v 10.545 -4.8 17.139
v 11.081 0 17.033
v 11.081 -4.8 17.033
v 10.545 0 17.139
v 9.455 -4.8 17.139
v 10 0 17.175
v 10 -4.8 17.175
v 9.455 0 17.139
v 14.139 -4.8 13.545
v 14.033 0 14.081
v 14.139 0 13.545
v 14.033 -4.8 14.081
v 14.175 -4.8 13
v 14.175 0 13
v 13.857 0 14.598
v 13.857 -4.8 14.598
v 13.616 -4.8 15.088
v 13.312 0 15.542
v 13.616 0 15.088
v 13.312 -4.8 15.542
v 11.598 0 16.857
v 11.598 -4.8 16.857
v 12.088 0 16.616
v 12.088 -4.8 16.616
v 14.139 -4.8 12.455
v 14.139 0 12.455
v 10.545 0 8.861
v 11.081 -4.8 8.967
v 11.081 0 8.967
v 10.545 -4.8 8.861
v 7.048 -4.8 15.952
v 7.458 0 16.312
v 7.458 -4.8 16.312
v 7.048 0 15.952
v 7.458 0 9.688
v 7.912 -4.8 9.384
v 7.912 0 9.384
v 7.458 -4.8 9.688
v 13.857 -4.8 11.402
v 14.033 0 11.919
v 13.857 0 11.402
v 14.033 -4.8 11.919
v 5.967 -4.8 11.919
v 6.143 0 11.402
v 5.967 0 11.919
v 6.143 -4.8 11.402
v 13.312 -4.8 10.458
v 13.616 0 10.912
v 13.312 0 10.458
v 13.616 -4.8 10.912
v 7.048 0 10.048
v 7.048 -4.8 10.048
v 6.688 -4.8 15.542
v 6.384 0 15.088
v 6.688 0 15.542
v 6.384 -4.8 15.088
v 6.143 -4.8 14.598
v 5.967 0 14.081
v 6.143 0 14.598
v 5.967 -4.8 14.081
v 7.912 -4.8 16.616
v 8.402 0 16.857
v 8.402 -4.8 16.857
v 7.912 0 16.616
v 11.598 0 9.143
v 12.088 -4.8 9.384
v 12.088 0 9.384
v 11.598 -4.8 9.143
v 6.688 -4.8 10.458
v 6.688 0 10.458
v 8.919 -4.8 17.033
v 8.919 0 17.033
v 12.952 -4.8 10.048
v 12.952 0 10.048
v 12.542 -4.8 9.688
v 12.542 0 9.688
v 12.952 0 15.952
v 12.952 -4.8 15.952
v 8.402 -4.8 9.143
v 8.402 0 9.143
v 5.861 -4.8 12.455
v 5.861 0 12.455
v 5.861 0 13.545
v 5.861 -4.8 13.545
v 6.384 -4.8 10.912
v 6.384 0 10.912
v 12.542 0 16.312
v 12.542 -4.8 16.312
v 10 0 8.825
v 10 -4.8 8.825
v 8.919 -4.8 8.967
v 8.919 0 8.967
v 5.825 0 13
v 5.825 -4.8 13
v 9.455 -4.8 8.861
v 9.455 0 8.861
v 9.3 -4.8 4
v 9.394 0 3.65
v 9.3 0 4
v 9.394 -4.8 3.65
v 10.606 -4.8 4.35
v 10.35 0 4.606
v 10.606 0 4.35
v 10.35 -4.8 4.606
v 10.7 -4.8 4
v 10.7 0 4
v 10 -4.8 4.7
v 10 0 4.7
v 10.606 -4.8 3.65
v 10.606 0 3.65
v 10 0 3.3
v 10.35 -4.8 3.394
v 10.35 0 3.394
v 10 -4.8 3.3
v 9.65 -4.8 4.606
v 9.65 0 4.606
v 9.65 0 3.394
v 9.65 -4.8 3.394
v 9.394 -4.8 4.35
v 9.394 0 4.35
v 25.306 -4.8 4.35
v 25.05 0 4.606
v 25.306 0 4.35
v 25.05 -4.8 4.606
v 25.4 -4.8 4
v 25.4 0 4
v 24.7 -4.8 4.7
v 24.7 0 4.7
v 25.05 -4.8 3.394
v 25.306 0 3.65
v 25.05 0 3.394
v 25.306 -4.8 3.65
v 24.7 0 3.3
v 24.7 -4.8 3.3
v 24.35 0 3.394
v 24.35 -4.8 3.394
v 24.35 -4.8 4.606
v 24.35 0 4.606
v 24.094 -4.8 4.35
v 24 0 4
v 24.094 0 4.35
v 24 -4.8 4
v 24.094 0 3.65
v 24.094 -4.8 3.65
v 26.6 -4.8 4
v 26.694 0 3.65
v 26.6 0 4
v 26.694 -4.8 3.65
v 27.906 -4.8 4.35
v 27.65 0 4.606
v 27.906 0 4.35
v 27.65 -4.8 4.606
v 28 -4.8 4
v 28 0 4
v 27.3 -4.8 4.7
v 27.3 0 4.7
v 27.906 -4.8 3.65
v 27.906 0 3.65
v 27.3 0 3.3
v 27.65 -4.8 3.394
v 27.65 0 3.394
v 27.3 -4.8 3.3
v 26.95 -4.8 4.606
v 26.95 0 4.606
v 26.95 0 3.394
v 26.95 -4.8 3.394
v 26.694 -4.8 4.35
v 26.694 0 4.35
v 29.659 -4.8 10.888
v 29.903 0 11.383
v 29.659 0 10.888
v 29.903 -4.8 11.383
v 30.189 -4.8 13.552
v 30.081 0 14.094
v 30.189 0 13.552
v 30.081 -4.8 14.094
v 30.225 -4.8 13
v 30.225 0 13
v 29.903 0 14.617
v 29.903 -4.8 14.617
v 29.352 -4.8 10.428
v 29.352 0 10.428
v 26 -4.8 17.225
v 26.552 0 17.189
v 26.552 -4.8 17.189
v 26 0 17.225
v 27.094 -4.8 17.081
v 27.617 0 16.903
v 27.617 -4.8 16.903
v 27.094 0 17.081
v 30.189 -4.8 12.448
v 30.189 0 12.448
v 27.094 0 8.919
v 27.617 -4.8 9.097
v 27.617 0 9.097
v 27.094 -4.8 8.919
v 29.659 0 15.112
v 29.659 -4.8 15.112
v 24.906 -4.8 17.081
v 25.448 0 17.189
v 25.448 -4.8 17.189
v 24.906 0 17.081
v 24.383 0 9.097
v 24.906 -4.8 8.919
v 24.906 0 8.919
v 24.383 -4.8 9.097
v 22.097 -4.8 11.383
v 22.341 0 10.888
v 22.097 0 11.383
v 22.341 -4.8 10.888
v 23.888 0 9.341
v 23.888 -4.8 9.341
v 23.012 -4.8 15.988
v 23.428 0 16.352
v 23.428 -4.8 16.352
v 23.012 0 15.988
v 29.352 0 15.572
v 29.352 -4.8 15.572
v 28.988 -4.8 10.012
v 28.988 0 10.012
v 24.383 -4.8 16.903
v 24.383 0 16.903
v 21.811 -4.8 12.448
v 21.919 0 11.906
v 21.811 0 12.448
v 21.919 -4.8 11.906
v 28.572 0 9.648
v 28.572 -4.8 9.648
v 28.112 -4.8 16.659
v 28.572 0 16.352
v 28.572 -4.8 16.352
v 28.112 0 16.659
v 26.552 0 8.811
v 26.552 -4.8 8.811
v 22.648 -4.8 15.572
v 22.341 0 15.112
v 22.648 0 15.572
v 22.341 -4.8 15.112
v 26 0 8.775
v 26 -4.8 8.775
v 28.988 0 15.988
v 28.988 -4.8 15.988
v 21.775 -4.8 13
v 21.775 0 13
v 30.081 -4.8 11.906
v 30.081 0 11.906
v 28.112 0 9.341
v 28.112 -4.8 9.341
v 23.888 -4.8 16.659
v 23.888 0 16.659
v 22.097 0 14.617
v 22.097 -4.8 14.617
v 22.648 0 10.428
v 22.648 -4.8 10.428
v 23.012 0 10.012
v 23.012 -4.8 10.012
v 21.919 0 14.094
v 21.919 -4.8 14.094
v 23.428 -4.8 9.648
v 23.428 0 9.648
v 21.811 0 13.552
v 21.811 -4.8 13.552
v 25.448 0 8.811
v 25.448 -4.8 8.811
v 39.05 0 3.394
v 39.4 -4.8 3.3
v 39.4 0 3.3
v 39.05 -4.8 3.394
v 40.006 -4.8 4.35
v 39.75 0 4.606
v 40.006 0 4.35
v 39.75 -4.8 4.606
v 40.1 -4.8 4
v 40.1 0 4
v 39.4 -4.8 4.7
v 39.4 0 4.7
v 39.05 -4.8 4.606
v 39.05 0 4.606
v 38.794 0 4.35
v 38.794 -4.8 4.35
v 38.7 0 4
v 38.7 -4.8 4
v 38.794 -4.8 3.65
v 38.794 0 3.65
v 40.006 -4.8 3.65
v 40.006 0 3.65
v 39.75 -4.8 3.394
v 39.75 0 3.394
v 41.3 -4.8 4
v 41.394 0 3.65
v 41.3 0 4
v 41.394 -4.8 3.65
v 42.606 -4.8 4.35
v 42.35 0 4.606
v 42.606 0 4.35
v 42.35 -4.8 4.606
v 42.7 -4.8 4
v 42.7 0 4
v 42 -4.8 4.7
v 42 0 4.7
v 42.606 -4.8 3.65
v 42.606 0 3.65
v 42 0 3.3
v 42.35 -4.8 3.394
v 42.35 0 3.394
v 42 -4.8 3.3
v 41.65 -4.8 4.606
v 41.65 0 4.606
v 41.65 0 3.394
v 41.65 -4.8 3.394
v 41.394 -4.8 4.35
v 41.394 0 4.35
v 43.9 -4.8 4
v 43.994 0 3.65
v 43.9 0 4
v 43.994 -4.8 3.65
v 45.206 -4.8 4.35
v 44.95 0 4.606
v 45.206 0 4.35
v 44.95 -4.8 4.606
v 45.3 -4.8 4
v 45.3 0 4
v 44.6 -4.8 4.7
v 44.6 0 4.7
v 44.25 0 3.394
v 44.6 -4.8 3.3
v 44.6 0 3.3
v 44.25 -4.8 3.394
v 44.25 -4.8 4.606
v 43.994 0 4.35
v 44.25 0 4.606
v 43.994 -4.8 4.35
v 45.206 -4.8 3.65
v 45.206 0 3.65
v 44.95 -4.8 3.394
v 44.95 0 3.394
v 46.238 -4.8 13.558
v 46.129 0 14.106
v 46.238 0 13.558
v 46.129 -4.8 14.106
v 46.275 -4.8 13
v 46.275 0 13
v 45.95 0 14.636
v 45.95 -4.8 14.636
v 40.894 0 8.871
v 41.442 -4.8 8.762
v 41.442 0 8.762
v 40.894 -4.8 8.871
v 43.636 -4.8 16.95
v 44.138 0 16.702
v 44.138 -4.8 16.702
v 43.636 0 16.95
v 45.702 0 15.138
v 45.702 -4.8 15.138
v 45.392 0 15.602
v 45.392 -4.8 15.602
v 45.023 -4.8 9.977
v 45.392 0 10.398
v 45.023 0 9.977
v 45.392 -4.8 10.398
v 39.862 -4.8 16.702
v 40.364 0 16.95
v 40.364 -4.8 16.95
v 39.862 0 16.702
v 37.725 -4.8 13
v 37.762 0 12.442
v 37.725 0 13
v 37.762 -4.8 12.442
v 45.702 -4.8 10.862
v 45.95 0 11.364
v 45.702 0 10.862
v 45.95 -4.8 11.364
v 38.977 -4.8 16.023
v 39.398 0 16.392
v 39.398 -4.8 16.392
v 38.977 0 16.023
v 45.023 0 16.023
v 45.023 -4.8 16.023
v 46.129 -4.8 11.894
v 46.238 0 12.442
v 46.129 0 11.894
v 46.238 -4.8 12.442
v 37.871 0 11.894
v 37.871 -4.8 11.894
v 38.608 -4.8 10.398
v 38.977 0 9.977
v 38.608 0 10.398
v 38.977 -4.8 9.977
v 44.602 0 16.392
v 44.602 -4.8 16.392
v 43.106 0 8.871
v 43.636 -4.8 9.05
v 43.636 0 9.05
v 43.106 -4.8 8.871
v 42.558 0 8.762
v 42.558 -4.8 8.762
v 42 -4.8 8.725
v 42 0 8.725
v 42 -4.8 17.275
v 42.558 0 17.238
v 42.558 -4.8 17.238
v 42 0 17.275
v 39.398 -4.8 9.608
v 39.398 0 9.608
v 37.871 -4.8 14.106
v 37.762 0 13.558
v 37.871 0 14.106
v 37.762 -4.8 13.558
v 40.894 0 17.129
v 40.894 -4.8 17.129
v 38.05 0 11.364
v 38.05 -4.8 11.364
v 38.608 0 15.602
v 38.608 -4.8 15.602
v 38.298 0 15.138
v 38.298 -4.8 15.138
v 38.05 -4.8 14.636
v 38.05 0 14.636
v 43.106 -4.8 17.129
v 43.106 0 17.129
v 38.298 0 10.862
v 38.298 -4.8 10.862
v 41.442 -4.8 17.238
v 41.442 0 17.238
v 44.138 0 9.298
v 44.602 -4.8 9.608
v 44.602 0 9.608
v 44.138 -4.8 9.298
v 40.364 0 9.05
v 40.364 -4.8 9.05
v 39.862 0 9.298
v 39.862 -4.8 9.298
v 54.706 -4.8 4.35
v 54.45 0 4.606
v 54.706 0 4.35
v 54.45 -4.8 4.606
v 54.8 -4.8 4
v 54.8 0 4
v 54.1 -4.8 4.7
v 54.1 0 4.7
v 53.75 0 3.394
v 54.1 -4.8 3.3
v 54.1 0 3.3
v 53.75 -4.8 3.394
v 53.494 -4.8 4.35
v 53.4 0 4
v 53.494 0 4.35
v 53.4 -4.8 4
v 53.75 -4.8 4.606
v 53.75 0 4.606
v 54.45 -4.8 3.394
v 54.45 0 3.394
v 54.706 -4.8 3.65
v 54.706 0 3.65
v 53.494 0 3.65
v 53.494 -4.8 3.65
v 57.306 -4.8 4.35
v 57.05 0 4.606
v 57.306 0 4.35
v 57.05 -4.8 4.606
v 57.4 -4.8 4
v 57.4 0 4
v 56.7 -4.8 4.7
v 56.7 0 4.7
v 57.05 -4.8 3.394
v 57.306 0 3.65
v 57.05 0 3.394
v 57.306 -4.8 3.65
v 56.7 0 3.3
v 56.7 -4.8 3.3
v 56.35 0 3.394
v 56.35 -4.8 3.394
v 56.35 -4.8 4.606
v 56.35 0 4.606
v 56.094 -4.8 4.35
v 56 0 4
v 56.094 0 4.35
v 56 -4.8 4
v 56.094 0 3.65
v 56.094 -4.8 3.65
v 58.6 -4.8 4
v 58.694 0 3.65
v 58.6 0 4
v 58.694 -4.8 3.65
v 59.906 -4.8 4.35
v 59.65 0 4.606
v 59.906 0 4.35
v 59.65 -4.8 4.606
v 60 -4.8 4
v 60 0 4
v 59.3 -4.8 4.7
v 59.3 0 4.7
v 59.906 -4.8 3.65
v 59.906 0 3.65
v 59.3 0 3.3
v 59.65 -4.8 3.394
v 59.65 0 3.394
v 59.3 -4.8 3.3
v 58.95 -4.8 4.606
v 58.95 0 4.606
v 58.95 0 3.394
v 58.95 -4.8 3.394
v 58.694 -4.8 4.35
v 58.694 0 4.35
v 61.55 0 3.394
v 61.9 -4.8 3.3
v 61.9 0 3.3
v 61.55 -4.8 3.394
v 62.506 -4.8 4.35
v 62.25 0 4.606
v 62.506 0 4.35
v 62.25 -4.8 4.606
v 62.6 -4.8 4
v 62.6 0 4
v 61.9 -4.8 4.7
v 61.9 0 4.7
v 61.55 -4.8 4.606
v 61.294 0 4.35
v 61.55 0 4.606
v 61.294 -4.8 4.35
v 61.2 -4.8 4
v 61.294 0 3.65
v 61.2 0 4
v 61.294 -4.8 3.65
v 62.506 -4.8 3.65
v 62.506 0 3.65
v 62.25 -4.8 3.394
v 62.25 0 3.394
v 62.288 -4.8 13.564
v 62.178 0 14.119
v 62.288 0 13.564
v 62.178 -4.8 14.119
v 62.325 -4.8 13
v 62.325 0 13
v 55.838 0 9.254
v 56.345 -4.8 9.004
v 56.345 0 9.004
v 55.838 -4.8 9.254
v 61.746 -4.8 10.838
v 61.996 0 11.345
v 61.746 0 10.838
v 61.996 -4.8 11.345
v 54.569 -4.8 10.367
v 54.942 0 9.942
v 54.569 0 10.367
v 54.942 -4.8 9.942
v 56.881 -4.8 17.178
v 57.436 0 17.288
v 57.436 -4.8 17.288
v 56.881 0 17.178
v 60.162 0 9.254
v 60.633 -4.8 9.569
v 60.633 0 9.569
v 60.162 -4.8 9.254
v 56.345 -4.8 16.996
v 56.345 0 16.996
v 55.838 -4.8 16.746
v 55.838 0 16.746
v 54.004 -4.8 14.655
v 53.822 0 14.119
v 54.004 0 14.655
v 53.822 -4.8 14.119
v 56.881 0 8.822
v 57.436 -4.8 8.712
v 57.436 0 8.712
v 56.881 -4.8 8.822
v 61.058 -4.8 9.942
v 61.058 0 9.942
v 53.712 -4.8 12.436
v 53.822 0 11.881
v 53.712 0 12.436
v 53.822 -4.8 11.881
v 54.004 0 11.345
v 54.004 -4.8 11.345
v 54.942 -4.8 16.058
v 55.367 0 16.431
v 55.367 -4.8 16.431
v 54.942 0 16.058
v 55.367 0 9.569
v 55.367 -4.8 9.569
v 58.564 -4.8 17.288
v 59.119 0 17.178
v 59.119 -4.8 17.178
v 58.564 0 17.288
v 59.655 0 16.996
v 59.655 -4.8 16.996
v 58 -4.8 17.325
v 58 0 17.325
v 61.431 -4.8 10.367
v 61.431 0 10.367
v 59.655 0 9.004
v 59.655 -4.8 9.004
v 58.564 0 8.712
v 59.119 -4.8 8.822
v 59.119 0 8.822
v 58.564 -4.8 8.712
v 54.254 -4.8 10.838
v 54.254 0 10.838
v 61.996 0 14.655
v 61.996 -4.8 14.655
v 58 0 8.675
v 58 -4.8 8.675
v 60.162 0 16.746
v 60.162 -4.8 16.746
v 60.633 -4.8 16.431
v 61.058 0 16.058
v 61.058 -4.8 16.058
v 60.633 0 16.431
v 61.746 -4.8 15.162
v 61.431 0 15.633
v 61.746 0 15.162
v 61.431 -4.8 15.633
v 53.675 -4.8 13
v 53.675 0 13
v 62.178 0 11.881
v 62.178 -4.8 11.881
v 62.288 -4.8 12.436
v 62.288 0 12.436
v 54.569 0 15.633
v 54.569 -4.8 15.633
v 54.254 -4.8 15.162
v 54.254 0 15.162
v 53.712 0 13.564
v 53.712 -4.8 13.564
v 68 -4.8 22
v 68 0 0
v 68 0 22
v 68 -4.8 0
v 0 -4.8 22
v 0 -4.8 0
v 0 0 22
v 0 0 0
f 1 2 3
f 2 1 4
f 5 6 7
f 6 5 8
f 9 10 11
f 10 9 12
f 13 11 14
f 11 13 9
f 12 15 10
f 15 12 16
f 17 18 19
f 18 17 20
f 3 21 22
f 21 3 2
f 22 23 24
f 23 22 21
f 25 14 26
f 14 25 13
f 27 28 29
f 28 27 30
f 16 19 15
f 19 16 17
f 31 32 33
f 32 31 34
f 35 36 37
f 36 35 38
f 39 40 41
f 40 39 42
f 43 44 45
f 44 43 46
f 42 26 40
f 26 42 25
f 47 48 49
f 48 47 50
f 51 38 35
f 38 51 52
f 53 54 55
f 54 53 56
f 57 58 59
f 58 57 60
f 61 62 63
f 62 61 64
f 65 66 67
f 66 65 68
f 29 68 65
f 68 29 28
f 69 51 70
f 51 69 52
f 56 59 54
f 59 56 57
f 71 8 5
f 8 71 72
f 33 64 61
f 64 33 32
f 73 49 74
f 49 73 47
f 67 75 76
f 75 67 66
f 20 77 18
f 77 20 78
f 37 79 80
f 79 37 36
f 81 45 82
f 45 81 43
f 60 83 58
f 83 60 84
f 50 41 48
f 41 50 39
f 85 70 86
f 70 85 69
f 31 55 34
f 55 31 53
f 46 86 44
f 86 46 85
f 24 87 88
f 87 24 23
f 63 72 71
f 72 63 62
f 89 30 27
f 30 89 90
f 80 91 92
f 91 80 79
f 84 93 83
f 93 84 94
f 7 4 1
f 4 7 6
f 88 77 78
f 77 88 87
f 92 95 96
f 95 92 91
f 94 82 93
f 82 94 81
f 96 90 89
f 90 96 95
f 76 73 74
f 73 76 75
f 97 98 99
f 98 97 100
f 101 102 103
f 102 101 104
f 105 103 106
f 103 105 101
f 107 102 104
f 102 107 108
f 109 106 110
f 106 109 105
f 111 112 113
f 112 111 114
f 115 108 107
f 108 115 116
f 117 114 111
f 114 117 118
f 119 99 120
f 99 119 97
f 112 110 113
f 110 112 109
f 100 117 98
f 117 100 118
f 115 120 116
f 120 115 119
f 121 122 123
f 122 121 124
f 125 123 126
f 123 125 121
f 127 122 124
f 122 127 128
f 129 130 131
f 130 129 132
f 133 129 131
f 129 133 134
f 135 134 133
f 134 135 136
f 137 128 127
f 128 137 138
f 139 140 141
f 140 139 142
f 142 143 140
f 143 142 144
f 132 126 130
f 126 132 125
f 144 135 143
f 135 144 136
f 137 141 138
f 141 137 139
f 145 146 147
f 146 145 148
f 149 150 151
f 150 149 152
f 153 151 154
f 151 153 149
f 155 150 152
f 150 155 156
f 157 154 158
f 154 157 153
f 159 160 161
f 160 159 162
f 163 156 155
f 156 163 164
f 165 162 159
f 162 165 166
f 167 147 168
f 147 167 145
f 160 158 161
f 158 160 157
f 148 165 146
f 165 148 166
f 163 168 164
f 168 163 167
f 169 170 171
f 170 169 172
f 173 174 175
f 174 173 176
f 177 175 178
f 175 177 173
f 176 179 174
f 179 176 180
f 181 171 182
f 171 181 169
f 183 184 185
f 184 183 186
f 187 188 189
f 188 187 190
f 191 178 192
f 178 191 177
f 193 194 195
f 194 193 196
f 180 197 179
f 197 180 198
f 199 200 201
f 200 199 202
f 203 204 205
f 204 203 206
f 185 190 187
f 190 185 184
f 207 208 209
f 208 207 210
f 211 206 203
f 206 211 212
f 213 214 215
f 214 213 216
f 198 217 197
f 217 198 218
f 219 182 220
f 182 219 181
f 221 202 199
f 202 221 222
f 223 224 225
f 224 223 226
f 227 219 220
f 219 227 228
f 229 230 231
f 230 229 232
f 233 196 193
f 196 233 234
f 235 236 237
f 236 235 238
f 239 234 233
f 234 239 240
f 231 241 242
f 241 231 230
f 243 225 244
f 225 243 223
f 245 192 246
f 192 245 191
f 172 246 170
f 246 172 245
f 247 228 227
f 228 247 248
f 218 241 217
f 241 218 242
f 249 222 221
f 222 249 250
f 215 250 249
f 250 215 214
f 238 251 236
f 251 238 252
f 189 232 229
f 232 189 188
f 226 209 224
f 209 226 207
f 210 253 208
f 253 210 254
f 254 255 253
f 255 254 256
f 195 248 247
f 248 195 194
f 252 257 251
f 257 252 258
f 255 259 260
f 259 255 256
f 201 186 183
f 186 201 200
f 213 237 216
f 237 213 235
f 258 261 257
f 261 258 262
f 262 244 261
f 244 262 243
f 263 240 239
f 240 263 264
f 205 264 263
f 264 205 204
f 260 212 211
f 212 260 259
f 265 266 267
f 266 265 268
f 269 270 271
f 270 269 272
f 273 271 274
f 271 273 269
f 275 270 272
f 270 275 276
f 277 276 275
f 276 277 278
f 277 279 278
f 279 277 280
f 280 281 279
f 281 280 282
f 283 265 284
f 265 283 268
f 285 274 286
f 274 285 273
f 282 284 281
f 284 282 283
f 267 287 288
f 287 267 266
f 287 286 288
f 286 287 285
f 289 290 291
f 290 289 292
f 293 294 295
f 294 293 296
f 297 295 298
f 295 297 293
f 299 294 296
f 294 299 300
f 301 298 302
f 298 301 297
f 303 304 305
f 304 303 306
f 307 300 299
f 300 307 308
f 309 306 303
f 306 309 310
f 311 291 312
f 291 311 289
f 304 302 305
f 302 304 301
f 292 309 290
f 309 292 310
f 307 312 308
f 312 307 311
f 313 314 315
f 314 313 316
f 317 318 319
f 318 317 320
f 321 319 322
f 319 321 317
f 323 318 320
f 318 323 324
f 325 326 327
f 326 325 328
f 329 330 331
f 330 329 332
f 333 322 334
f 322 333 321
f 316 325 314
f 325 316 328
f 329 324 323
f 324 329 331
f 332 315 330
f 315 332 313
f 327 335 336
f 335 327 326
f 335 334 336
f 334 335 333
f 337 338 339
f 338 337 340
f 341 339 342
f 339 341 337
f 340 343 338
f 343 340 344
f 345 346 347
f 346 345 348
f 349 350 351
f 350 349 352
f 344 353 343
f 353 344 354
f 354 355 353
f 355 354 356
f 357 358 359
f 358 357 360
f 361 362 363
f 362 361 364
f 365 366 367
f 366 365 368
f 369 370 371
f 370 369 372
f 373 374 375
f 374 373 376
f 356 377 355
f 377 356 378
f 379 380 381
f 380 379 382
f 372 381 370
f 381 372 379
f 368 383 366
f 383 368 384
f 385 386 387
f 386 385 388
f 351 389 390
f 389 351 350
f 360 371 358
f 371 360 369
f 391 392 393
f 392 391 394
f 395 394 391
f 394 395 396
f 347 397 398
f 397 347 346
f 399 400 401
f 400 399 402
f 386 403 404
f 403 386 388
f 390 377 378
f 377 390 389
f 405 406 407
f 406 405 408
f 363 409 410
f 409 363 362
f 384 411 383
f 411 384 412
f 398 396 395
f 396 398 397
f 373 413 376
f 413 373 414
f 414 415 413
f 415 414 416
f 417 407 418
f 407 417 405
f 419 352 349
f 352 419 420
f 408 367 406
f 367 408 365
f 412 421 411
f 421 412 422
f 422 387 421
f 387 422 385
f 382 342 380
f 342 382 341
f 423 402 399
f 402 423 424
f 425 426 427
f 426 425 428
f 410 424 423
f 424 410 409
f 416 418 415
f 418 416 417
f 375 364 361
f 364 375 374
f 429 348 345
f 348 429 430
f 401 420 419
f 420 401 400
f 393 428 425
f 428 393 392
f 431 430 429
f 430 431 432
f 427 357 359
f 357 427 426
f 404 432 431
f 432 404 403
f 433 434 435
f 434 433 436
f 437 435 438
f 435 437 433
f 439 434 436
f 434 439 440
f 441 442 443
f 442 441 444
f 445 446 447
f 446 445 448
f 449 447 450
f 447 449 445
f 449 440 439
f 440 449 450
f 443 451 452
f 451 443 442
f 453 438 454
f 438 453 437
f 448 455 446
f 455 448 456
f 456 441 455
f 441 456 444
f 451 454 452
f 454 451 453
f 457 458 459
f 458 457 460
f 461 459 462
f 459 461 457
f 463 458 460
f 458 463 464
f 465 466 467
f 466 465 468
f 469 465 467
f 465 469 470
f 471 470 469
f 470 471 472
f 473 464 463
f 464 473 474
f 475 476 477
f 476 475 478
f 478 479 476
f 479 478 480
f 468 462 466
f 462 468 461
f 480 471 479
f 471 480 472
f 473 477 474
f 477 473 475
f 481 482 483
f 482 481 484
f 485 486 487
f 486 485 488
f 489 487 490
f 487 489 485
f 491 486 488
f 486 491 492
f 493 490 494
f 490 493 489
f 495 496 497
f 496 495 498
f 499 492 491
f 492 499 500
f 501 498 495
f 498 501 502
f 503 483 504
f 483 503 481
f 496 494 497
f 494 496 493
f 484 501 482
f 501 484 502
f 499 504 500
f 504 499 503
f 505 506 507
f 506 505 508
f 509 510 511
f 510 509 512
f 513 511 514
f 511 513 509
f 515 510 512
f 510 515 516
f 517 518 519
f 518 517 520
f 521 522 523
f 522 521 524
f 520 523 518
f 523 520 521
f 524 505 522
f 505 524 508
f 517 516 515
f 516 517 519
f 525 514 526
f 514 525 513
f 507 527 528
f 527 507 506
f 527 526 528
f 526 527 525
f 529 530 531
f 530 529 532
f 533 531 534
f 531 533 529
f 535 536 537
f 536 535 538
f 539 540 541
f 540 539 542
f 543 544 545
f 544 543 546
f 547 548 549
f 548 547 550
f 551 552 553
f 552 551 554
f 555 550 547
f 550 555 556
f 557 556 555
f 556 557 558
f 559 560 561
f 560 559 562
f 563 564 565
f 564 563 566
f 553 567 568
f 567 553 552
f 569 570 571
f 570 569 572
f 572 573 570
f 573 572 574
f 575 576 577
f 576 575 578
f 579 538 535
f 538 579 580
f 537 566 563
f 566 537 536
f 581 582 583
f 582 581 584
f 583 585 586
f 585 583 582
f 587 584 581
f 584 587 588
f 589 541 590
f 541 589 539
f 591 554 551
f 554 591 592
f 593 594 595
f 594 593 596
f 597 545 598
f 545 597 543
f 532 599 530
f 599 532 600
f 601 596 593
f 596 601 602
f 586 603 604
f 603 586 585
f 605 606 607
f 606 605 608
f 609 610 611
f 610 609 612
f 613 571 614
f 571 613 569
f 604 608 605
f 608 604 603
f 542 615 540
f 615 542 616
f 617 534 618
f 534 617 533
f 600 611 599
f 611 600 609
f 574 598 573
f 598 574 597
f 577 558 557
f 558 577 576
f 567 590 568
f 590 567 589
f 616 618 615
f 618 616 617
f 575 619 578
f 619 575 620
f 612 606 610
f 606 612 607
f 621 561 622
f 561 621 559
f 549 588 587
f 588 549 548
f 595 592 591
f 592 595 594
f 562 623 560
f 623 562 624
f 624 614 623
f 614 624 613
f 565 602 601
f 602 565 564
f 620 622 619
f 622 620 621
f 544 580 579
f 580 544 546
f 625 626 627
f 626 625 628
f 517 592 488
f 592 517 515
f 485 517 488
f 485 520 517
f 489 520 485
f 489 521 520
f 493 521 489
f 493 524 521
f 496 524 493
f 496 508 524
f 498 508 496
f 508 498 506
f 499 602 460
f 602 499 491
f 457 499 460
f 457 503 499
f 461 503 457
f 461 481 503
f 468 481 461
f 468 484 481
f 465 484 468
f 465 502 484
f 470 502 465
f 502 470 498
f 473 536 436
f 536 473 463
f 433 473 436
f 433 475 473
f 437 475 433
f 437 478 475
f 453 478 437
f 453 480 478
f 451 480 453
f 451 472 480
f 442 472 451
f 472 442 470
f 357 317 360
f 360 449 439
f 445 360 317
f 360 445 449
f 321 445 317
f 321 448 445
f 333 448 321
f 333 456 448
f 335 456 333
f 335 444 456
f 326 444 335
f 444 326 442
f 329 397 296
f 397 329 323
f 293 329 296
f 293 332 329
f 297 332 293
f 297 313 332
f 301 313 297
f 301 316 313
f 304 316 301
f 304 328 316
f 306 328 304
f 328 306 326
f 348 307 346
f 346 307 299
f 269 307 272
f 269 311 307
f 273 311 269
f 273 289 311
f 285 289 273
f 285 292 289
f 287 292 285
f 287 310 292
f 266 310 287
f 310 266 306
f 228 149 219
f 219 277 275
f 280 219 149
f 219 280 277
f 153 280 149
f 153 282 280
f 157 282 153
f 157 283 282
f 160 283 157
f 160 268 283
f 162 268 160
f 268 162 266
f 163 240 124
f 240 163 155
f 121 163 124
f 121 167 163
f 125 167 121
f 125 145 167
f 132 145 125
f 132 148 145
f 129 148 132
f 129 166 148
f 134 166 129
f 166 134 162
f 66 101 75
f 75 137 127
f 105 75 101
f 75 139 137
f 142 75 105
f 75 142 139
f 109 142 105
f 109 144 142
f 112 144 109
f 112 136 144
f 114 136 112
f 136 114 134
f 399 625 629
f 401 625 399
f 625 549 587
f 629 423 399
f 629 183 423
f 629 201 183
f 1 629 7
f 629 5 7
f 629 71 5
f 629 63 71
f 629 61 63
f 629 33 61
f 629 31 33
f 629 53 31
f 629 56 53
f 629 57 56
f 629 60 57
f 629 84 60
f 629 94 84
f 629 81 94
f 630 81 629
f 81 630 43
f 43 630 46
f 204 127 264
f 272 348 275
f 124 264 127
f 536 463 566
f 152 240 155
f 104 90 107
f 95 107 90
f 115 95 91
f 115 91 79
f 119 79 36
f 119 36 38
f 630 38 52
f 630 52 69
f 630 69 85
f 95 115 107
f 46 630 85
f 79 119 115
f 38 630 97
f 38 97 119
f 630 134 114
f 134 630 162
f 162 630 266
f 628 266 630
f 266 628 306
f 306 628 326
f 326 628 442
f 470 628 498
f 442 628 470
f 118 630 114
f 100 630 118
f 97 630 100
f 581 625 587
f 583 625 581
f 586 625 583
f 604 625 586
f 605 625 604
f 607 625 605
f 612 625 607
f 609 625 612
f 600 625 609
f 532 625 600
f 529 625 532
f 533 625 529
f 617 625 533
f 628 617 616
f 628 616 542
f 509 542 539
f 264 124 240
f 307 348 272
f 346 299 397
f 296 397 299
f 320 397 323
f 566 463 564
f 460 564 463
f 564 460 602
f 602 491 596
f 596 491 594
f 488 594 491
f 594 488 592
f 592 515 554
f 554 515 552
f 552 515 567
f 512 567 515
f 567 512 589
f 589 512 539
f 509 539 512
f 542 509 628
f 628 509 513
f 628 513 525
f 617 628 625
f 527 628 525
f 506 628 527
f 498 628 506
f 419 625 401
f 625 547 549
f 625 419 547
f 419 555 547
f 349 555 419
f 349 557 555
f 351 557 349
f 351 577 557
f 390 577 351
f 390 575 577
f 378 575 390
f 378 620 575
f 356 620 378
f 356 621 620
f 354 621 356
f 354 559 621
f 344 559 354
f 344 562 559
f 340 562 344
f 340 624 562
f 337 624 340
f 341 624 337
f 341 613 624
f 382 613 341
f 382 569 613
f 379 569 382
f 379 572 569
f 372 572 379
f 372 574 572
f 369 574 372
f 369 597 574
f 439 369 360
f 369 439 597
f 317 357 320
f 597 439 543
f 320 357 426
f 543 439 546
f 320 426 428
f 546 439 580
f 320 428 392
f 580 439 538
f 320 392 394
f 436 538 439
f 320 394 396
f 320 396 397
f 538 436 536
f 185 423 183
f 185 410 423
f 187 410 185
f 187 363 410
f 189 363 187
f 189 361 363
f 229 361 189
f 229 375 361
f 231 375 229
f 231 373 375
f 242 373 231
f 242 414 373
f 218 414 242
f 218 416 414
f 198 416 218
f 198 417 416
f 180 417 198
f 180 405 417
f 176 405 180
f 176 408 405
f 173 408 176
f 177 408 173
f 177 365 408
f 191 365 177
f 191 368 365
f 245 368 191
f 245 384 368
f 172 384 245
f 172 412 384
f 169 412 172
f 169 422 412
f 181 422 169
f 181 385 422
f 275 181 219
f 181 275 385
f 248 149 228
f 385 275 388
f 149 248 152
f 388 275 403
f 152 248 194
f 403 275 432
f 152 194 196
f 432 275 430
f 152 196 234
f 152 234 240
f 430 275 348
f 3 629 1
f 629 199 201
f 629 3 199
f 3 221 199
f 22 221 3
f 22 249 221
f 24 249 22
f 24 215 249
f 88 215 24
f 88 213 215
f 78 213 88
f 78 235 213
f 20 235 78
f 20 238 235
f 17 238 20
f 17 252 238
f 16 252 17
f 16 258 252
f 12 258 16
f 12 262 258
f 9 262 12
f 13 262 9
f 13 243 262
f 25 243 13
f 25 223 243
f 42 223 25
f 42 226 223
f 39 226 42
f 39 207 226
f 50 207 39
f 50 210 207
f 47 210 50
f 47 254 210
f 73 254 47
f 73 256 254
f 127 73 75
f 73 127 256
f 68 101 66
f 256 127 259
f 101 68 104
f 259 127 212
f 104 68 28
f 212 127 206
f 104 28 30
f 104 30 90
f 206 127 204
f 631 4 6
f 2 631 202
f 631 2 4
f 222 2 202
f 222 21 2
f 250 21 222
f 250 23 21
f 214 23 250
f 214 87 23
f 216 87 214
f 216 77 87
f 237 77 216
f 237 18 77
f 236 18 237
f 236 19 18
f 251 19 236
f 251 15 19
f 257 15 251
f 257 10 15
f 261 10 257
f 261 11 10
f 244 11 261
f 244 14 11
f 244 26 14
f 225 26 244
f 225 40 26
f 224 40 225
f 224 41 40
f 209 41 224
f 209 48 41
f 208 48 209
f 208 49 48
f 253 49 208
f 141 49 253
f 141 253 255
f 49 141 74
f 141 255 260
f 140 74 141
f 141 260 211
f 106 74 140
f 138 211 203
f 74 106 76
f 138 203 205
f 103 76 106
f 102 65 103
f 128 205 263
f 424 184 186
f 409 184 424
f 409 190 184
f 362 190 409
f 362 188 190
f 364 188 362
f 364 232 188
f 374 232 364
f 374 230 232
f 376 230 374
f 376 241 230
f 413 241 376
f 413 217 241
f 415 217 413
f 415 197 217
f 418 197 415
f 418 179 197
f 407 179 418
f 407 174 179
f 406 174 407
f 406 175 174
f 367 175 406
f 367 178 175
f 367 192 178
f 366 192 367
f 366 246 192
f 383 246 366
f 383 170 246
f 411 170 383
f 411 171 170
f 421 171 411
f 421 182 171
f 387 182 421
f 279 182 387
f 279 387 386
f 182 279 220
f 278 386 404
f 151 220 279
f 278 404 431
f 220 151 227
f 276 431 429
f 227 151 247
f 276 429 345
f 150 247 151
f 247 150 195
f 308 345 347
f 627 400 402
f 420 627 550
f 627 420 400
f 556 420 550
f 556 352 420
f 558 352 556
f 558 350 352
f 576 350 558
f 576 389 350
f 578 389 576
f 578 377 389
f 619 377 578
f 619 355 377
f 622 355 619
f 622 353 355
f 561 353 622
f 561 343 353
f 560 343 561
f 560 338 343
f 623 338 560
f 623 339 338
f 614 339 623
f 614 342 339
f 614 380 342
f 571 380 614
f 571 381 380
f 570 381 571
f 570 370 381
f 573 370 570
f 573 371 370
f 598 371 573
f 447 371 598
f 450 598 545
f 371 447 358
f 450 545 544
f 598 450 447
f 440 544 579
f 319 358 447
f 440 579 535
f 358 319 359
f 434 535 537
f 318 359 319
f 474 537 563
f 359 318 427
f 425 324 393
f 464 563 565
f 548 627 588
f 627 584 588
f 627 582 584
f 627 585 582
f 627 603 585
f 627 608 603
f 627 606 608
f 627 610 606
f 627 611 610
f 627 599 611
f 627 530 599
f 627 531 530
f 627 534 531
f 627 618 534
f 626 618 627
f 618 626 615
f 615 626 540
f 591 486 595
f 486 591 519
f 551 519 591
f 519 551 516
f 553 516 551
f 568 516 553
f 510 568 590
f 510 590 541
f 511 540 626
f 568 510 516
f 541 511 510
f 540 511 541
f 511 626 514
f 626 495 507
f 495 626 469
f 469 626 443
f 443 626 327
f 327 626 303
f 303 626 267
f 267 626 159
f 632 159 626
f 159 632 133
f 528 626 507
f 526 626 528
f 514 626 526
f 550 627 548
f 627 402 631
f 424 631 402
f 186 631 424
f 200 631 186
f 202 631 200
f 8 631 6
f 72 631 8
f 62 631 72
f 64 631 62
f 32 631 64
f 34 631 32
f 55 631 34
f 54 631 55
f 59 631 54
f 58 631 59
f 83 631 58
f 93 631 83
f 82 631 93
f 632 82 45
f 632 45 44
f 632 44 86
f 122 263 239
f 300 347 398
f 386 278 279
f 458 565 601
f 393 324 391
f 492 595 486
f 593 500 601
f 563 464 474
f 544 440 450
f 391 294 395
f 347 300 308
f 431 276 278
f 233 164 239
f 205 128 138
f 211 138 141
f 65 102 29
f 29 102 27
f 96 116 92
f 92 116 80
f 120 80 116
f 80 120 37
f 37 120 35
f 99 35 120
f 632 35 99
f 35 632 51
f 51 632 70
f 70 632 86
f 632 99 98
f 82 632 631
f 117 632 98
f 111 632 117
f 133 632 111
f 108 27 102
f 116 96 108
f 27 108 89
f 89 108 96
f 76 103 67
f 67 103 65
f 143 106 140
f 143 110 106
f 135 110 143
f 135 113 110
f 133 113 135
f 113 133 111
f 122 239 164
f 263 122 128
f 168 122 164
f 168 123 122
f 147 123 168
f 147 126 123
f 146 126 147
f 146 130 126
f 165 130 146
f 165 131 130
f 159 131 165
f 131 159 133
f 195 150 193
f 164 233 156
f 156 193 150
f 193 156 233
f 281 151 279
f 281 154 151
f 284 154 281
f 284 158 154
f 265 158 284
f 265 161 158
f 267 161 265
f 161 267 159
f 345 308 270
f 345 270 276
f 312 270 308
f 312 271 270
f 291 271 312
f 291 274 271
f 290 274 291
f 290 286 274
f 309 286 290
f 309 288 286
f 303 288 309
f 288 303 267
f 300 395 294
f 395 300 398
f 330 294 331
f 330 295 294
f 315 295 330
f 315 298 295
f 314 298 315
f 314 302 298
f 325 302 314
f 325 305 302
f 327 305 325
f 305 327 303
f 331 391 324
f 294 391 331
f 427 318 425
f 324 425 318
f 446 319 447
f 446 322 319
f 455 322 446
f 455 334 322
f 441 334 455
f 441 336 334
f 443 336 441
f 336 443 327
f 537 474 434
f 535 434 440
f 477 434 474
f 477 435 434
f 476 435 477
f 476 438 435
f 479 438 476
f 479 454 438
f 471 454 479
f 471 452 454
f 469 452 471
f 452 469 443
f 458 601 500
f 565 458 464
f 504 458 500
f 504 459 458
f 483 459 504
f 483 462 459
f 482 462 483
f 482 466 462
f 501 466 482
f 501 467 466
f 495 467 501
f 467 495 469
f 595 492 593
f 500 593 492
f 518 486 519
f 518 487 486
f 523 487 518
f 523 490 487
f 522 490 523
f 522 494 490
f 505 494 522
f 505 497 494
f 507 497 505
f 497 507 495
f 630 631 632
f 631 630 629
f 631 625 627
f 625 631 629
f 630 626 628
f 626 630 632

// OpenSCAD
// 2026-11-03: rod fit gauge, round 2. The 8.05 / 8.15 / 8.25 holes in the first gauge were
// all too tight for the 8 mm rod (holes printed horizontal come out small). Same plate as
// the cradle's end plates (4.8 thick, standing on edge so the holes print horizontal, as in
// the cradle). Dots under each hole count the candidate: 1 dot = first value, ... Units mm.

rod   = [8.35, 8.45, 8.55, 8.65];
pitch = 16;
plate = [(len(rod) - 1) * pitch + 20, 22, 4.8];

rotate([90, 0, 0]) difference() {
    cube(plate);
    for (i = [0 : len(rod) - 1]) translate([10 + i * pitch, 13, -1]) {
        cylinder(d = rod[i], h = plate[2] + 2, $fn = 48);
        for (k = [0 : i]) translate([(k - i / 2) * 2.6, -9, 0]) cylinder(d = 1.4, h = plate[2] + 2, $fn = 12);
    }
}
echo(str("rod gauge ", rod, " (1 to 4 dots)"));
